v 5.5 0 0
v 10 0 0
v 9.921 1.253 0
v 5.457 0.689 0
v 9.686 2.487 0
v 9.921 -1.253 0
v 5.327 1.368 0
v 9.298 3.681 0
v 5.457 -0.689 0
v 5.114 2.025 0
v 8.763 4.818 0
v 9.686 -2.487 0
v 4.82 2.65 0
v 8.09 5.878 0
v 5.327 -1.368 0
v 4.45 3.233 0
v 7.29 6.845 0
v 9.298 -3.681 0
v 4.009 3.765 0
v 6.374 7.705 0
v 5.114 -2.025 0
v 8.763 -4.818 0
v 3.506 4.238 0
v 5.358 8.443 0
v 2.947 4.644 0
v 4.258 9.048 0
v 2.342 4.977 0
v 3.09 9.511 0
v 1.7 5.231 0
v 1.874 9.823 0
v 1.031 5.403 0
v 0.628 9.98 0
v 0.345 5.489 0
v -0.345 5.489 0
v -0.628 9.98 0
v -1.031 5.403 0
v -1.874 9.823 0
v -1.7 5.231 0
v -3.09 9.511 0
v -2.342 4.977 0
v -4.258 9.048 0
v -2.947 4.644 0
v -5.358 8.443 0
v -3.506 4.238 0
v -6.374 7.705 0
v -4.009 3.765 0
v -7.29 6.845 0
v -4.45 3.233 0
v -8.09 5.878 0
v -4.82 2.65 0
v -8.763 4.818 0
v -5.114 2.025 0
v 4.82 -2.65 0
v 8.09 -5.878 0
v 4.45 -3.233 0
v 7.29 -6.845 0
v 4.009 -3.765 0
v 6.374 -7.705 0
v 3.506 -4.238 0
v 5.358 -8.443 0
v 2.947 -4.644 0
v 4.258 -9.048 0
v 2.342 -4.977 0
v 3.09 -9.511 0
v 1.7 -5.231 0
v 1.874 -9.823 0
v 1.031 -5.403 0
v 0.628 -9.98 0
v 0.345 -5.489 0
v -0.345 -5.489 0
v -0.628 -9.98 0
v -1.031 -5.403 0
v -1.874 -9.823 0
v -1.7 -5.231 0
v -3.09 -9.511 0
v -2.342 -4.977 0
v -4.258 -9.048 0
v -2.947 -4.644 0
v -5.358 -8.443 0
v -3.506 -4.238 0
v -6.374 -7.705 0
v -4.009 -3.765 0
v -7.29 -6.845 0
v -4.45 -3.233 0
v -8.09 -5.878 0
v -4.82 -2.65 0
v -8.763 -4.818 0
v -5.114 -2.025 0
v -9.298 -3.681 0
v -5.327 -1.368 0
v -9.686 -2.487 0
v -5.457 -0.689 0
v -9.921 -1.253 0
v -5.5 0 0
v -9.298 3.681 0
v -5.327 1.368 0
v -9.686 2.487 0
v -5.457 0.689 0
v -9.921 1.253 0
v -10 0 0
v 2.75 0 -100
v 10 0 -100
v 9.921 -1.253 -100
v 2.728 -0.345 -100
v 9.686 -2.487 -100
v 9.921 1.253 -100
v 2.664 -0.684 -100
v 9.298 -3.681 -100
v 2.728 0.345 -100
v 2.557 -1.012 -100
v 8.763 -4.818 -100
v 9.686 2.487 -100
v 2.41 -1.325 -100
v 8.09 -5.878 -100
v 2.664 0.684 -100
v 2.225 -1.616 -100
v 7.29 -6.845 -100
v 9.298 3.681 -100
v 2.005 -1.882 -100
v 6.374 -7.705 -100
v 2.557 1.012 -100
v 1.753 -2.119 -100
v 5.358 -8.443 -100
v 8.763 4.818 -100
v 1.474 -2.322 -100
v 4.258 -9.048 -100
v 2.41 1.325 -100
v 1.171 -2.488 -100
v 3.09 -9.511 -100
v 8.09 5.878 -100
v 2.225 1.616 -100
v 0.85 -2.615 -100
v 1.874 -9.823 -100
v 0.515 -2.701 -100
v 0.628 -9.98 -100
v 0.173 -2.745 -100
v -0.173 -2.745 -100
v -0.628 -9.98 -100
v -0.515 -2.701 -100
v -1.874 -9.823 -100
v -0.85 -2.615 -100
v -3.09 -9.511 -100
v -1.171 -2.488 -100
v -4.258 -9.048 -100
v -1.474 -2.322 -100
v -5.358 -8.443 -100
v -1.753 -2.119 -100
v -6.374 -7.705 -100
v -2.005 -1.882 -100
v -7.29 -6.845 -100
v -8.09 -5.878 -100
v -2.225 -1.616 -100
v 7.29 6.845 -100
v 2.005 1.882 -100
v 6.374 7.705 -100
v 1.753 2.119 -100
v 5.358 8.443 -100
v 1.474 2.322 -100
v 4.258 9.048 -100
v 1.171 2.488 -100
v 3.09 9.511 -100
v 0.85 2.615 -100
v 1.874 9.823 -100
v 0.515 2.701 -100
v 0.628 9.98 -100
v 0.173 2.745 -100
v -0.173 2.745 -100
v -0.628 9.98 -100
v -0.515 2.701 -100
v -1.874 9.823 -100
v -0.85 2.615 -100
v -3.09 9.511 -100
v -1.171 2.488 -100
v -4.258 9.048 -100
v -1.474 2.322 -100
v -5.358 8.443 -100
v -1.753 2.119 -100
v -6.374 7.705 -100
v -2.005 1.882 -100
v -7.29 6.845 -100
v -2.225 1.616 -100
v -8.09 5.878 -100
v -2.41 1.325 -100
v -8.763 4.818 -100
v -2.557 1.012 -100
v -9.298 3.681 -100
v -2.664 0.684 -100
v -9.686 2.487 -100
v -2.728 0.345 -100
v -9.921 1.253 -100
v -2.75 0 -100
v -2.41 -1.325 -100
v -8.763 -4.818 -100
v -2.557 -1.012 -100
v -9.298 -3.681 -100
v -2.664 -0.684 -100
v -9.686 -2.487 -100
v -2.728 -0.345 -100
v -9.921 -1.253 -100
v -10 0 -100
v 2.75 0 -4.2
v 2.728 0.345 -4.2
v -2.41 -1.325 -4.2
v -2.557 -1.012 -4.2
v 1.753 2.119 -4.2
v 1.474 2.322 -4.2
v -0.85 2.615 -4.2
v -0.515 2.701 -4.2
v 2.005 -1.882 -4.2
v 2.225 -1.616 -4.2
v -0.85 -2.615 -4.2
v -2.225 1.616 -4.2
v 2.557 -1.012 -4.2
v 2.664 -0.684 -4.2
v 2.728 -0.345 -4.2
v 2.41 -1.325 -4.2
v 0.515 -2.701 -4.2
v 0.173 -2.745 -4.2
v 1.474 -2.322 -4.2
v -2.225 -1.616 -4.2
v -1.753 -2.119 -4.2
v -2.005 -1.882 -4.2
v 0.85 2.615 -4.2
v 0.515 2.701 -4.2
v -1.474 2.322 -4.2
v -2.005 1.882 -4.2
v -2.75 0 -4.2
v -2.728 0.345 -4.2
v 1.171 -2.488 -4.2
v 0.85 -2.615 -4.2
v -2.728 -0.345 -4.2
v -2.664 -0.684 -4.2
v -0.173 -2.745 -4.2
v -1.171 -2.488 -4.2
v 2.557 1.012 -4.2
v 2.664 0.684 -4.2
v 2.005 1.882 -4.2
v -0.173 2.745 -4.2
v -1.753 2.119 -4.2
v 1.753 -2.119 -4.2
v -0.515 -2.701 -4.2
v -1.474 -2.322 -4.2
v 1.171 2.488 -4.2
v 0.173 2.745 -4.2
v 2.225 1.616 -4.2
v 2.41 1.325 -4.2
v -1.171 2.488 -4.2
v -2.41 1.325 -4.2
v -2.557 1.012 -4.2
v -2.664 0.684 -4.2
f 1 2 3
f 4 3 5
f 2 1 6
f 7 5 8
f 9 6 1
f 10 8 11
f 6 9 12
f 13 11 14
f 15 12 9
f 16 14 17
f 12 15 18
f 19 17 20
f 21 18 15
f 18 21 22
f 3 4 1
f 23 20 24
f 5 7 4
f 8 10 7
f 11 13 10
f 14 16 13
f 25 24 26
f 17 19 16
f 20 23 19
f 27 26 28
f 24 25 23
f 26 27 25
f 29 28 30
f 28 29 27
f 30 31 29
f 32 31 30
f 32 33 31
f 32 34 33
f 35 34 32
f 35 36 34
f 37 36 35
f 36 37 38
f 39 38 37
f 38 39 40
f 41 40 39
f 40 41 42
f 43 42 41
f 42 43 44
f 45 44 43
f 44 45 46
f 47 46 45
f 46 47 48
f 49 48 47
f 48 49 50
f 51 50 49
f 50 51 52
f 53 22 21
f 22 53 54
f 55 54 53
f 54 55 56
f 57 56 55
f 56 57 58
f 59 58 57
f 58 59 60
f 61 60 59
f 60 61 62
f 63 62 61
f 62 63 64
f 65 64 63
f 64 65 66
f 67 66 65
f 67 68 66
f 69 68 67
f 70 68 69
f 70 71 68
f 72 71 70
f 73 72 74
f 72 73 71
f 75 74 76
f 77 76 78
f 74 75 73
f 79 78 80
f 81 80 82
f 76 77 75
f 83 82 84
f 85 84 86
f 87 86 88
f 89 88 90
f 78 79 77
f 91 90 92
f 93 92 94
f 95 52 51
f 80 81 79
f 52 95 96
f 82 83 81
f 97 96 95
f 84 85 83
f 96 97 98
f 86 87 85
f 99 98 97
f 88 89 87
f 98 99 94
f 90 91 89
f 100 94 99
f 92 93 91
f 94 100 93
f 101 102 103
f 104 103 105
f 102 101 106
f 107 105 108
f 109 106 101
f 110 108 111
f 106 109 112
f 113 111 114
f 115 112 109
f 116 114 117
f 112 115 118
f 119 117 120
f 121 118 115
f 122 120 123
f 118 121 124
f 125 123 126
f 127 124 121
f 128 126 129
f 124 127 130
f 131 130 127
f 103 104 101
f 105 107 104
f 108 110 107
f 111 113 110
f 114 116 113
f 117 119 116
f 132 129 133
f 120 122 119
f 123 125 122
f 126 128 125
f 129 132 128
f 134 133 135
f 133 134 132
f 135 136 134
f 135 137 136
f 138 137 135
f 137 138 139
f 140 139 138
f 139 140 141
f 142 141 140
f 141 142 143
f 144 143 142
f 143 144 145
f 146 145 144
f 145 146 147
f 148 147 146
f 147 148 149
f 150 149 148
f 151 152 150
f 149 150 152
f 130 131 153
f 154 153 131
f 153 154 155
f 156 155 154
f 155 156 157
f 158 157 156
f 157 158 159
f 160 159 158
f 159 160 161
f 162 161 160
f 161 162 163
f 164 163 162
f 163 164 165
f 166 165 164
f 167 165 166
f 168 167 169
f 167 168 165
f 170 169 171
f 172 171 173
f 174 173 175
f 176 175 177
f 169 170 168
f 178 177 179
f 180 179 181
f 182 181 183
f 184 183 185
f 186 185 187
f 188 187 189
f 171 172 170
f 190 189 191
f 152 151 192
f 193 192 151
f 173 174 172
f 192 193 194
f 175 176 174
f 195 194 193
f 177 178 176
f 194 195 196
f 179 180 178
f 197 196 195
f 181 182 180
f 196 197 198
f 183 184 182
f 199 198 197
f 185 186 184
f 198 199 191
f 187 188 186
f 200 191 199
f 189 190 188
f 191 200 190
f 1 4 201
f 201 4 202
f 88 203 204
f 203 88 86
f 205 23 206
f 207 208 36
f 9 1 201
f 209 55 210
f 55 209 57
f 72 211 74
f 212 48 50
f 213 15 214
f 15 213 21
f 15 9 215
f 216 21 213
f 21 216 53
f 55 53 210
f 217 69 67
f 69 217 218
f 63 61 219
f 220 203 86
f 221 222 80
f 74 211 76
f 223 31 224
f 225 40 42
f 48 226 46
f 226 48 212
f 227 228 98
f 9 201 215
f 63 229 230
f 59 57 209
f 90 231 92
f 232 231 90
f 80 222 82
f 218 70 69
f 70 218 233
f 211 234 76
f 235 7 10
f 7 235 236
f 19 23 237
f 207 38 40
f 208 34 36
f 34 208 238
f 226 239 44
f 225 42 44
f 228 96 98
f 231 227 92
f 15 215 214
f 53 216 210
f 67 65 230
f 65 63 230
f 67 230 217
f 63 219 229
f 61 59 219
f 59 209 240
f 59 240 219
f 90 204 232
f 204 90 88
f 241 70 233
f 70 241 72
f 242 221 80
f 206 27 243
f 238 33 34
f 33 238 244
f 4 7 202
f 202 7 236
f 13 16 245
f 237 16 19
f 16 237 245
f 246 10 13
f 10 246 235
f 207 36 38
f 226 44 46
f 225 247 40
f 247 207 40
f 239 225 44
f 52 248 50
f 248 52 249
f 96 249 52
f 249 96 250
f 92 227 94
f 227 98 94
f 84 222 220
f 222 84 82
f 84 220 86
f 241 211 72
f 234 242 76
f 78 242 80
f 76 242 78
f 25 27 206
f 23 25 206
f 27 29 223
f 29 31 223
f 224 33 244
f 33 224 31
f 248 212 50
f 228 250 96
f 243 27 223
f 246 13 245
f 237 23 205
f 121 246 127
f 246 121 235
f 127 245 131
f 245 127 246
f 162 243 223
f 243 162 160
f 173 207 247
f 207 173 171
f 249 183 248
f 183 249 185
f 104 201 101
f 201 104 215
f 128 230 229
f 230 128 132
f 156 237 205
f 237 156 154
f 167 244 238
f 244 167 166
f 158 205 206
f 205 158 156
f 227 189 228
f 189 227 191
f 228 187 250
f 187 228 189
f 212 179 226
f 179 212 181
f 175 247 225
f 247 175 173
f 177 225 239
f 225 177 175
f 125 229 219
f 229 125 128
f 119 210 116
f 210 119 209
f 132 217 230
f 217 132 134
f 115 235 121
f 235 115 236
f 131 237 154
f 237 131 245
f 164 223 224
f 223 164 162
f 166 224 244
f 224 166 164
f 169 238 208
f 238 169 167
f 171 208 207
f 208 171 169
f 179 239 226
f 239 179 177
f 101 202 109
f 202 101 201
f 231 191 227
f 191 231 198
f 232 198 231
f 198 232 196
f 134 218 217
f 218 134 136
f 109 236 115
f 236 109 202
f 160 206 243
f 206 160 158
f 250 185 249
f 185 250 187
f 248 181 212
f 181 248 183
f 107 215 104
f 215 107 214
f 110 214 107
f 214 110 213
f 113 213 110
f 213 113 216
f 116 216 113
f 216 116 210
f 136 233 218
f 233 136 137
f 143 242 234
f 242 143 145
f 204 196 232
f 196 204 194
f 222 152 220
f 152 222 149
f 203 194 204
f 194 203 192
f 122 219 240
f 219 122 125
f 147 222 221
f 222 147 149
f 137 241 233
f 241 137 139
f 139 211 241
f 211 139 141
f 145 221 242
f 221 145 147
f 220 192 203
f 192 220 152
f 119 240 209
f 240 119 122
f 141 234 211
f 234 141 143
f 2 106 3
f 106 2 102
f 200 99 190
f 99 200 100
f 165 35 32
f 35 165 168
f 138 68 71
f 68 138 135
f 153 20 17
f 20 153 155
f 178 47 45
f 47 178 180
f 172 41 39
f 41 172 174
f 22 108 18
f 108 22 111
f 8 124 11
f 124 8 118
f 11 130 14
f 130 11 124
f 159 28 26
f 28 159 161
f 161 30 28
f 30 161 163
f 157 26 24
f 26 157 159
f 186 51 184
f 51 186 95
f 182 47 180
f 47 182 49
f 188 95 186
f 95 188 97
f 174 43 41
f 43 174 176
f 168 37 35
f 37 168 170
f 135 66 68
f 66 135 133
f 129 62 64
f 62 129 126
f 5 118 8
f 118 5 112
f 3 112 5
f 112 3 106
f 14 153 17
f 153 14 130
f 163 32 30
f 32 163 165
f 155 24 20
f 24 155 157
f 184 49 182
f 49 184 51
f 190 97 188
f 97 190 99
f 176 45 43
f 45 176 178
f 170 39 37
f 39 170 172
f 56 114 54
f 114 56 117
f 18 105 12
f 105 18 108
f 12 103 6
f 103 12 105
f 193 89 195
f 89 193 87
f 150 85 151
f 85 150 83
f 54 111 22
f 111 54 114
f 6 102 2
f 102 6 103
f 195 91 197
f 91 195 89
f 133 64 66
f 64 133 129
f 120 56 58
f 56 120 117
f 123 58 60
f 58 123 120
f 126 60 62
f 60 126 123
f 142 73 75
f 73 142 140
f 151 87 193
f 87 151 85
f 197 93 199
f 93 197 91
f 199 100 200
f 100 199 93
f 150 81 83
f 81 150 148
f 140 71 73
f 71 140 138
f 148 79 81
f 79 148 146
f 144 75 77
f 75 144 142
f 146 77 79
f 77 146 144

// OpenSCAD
$fn = 50;


difference() {
	union() {
		translate(v = [0, 0, -100.0000000000]) {
			cylinder(h = 100, r = 10.0000000000);
		}
	}
	union() {
		translate(v = [0, 0, 0]) {
			rotate(a = [0, 0, 0]) {
				difference() {
					union() {
						#translate(v = [0, 0, -100.0000000000]) {
							cylinder(h = 100, r = 2.2500000000);
						}
						#translate(v = [0, 0, -4.2000000000]) {
							cylinder(h = 4.2000000000, r1 = 2.7500000000, r2 = 5.5000000000);
						}
						#translate(v = [0, 0, -100.0000000000]) {
							cylinder(h = 100, r = 2.7500000000);
						}
						#translate(v = [0, 0, -100.0000000000]) {
							cylinder(h = 100, r = 2.2500000000);
						}
					}
					union();
				}
			}
		}
	}
}
